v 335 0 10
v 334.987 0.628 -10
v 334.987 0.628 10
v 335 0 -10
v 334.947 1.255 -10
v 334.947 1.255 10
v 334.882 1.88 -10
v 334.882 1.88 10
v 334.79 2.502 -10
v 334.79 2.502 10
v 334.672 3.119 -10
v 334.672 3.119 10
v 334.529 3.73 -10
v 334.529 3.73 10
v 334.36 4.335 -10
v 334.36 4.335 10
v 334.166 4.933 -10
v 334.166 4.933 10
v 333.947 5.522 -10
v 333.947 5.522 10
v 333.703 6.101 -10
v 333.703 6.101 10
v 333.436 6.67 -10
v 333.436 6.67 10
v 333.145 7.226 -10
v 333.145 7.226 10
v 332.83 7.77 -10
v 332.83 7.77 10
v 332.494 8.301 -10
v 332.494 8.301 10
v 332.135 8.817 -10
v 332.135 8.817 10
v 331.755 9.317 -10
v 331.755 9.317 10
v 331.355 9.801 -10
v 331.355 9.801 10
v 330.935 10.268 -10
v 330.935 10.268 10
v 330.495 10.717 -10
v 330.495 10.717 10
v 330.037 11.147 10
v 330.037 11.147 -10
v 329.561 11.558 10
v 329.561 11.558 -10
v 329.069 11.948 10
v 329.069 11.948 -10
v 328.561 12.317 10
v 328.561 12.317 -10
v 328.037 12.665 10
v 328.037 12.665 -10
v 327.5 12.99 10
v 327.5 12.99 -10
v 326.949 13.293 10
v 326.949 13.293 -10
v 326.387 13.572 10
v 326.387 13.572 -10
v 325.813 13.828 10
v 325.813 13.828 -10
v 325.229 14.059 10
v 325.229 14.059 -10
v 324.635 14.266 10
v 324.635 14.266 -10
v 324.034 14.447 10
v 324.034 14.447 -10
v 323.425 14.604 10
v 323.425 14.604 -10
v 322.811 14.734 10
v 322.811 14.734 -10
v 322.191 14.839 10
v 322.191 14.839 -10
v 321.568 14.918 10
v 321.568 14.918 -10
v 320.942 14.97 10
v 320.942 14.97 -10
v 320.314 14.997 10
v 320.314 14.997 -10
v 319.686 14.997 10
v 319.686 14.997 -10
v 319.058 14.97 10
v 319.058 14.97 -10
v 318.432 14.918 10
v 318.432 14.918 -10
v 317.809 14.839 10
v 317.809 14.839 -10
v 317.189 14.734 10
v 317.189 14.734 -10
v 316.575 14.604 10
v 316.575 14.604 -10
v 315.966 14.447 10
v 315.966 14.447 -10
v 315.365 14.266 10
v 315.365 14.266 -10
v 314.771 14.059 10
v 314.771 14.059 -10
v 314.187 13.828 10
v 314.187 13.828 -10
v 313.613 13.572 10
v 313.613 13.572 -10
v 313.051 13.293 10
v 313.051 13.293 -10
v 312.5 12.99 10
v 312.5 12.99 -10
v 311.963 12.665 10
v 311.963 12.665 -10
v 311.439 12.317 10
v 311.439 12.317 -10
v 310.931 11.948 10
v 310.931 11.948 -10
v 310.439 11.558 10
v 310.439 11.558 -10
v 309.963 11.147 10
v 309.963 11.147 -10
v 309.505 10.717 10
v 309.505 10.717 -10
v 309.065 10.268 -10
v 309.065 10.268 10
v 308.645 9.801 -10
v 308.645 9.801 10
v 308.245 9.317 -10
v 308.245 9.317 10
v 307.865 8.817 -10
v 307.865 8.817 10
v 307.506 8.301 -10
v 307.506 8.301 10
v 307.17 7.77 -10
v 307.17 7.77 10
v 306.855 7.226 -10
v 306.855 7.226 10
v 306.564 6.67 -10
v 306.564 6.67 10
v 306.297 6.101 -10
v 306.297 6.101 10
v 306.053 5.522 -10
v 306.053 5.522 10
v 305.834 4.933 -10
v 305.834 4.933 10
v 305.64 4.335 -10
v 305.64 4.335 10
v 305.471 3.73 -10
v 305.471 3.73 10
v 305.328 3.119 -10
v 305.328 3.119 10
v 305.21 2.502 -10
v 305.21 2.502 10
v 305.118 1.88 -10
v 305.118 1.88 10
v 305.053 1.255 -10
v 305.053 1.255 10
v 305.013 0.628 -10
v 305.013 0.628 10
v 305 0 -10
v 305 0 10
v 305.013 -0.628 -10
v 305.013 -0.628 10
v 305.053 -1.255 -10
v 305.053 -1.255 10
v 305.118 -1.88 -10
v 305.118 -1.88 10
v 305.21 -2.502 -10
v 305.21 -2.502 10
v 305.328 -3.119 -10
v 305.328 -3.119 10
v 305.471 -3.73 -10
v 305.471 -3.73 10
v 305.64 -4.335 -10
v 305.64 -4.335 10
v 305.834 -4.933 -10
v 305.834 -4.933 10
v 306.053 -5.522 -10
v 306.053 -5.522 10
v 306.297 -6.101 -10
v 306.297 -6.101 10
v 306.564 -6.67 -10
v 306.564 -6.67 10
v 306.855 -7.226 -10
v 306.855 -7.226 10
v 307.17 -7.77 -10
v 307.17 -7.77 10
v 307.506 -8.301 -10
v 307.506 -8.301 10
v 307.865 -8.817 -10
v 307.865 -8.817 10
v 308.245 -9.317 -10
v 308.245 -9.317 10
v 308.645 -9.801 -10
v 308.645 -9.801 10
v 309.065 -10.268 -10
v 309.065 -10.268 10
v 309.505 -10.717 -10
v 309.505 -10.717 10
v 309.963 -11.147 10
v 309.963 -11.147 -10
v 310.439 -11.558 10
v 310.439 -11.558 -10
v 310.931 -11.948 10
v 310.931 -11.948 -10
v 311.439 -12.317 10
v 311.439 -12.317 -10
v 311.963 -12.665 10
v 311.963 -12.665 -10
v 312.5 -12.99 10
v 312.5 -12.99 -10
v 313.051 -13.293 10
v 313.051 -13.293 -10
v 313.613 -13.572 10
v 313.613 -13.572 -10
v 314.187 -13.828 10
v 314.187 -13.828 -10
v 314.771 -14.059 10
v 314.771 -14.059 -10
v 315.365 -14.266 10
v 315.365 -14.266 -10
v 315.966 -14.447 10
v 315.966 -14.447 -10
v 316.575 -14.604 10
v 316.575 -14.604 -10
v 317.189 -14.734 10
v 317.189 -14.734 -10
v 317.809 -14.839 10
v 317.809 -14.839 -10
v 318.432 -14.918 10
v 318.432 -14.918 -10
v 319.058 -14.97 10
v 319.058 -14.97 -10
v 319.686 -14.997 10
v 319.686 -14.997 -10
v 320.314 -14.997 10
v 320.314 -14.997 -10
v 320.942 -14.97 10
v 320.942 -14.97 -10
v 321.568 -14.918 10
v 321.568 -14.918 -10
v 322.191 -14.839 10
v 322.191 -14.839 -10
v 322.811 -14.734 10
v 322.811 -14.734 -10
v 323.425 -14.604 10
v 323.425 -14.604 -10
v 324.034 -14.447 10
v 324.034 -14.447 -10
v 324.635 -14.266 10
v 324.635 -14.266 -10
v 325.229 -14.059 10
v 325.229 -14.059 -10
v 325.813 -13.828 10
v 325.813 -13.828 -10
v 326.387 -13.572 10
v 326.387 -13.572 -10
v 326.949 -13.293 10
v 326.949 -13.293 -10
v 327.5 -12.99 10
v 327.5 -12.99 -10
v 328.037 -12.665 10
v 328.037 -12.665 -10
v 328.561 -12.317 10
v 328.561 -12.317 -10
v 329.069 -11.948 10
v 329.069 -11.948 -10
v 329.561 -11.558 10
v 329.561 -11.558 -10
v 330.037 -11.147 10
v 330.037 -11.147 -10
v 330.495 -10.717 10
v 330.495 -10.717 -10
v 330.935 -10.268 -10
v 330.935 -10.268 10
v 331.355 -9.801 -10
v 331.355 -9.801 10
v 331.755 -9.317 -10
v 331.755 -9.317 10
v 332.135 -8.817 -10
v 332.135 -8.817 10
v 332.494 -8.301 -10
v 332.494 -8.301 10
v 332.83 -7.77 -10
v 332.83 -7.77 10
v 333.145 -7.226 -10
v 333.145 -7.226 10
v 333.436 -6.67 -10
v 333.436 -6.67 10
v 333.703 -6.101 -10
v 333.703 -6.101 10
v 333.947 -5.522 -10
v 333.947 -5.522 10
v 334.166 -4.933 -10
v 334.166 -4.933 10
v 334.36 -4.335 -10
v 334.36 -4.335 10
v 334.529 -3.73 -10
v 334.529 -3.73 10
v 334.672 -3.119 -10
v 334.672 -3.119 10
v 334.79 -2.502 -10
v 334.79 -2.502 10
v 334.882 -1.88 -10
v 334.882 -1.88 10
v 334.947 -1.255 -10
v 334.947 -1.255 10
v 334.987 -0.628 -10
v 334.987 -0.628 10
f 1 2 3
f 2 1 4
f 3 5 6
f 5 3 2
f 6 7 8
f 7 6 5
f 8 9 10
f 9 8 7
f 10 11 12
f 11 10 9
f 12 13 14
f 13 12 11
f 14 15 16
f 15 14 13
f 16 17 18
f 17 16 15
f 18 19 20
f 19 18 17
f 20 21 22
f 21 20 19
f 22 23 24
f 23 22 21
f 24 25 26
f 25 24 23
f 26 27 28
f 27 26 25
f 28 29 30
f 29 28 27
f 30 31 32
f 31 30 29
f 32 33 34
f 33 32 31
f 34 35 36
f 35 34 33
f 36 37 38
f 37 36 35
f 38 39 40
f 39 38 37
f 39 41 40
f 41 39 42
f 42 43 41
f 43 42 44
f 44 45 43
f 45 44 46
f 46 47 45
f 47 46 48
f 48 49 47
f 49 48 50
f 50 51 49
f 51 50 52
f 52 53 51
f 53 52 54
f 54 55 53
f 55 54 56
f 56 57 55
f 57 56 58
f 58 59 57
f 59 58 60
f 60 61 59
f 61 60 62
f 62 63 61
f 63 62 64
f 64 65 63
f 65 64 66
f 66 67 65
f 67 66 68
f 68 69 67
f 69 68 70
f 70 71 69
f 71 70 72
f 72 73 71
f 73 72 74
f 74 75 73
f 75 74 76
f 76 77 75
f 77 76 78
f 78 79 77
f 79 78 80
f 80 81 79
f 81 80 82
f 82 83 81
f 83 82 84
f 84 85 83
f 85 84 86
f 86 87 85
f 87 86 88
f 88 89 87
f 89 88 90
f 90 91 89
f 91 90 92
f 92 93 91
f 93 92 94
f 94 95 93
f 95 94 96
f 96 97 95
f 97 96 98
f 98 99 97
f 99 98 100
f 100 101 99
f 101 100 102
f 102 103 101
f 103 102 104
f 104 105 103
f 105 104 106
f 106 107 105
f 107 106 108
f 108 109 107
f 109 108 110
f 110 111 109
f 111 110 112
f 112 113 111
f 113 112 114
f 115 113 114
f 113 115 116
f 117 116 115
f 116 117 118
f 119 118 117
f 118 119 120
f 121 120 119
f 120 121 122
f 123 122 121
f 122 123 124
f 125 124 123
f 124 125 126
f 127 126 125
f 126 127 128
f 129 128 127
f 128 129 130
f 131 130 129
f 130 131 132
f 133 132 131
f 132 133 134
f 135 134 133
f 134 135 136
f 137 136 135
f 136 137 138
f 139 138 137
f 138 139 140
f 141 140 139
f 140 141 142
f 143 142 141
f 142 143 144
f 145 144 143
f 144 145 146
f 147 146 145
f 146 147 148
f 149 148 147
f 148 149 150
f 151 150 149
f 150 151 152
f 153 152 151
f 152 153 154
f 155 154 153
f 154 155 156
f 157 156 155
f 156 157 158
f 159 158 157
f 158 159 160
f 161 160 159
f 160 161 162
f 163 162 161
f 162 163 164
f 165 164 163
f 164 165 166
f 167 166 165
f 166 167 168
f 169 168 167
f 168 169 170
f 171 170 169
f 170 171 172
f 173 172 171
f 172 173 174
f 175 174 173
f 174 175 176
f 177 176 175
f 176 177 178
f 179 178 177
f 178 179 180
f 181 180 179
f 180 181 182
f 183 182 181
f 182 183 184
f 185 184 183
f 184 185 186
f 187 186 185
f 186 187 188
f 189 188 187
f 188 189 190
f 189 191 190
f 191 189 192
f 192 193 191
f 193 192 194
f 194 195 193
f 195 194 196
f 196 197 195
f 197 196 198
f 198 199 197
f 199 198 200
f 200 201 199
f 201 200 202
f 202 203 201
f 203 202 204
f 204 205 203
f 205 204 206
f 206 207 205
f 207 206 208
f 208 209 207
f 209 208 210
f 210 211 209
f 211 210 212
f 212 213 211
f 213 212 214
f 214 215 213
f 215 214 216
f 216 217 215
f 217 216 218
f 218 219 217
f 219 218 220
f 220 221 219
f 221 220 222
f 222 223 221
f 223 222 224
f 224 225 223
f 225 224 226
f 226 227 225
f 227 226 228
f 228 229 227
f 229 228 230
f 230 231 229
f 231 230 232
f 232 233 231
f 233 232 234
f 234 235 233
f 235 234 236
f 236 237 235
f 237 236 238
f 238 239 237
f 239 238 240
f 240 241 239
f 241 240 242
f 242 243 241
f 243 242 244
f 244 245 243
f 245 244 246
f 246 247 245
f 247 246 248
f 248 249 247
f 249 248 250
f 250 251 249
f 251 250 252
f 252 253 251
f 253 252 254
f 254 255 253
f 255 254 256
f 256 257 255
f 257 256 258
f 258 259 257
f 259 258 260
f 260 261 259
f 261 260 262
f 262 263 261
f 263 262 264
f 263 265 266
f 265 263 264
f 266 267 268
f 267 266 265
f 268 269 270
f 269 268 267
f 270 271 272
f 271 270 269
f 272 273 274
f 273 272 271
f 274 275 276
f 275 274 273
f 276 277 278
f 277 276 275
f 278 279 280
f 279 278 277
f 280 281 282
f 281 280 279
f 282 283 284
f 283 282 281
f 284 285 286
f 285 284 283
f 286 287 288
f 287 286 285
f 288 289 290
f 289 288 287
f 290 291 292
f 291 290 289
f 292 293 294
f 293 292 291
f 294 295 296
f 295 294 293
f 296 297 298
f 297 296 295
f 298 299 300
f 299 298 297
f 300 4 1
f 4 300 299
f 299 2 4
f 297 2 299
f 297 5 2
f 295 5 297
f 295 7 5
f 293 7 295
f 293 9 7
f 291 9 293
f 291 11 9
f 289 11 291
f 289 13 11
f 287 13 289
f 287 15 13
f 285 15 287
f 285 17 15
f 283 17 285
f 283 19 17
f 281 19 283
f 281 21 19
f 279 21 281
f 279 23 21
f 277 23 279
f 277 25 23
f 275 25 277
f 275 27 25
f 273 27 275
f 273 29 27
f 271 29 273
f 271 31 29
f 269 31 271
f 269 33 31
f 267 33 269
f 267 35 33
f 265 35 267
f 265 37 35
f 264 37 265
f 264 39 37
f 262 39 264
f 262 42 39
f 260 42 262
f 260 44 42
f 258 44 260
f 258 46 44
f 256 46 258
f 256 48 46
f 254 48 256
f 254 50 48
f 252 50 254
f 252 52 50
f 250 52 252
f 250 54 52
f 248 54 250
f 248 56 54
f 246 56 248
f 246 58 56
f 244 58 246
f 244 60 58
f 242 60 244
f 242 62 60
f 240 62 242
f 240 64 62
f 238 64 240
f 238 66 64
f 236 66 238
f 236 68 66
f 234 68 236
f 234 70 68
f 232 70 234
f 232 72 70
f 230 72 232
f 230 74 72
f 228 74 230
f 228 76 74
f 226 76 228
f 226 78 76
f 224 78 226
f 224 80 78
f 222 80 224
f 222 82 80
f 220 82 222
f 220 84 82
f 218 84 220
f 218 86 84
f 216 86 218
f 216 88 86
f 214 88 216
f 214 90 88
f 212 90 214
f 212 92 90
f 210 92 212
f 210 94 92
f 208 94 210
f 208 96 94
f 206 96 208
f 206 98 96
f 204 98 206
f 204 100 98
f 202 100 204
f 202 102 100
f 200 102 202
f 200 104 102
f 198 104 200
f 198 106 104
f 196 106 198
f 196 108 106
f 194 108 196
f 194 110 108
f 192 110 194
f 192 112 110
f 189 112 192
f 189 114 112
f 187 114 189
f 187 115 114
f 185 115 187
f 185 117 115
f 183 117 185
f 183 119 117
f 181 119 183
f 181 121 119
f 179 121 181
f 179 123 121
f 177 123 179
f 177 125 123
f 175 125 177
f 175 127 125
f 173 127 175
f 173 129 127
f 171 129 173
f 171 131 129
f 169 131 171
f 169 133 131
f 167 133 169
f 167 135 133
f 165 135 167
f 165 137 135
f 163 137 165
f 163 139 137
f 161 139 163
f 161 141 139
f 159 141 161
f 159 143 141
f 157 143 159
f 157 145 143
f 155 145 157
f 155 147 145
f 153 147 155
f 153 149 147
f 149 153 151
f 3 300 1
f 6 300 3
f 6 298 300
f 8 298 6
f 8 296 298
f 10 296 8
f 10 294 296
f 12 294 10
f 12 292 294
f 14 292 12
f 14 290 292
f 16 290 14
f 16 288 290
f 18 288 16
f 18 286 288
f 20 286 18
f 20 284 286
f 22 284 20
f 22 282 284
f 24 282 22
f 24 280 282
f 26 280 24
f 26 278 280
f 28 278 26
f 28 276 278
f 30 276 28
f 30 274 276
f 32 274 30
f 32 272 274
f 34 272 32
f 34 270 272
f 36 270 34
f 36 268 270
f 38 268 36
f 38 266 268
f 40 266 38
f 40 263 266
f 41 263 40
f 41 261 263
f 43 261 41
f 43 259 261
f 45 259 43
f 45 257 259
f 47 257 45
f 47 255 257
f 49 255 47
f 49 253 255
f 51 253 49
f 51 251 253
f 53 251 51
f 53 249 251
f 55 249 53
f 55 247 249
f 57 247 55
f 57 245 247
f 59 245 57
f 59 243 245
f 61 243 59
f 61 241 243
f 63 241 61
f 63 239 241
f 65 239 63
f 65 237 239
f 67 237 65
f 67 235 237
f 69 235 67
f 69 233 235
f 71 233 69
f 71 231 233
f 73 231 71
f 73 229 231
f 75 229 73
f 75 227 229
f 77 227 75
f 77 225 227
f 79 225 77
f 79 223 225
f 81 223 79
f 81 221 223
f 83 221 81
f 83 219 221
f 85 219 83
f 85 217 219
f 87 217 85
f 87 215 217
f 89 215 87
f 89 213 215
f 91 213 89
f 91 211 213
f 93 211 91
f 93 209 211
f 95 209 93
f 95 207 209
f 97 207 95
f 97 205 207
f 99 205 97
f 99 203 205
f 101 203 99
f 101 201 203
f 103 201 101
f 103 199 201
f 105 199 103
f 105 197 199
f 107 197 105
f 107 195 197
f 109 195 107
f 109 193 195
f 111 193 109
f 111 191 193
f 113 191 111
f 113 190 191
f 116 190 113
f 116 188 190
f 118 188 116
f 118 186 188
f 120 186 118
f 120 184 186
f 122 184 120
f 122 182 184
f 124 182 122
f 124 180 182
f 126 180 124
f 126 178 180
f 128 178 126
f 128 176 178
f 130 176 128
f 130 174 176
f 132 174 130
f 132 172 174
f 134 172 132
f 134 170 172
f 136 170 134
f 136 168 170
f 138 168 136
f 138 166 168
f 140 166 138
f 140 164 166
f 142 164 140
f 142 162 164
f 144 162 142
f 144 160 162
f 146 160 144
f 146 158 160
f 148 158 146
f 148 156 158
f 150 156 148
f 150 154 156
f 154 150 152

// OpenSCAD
$fn = 150;

translate([320, 0, 0])
rotate([0, 0, 0])
cylinder(20, 15, 15, true);
